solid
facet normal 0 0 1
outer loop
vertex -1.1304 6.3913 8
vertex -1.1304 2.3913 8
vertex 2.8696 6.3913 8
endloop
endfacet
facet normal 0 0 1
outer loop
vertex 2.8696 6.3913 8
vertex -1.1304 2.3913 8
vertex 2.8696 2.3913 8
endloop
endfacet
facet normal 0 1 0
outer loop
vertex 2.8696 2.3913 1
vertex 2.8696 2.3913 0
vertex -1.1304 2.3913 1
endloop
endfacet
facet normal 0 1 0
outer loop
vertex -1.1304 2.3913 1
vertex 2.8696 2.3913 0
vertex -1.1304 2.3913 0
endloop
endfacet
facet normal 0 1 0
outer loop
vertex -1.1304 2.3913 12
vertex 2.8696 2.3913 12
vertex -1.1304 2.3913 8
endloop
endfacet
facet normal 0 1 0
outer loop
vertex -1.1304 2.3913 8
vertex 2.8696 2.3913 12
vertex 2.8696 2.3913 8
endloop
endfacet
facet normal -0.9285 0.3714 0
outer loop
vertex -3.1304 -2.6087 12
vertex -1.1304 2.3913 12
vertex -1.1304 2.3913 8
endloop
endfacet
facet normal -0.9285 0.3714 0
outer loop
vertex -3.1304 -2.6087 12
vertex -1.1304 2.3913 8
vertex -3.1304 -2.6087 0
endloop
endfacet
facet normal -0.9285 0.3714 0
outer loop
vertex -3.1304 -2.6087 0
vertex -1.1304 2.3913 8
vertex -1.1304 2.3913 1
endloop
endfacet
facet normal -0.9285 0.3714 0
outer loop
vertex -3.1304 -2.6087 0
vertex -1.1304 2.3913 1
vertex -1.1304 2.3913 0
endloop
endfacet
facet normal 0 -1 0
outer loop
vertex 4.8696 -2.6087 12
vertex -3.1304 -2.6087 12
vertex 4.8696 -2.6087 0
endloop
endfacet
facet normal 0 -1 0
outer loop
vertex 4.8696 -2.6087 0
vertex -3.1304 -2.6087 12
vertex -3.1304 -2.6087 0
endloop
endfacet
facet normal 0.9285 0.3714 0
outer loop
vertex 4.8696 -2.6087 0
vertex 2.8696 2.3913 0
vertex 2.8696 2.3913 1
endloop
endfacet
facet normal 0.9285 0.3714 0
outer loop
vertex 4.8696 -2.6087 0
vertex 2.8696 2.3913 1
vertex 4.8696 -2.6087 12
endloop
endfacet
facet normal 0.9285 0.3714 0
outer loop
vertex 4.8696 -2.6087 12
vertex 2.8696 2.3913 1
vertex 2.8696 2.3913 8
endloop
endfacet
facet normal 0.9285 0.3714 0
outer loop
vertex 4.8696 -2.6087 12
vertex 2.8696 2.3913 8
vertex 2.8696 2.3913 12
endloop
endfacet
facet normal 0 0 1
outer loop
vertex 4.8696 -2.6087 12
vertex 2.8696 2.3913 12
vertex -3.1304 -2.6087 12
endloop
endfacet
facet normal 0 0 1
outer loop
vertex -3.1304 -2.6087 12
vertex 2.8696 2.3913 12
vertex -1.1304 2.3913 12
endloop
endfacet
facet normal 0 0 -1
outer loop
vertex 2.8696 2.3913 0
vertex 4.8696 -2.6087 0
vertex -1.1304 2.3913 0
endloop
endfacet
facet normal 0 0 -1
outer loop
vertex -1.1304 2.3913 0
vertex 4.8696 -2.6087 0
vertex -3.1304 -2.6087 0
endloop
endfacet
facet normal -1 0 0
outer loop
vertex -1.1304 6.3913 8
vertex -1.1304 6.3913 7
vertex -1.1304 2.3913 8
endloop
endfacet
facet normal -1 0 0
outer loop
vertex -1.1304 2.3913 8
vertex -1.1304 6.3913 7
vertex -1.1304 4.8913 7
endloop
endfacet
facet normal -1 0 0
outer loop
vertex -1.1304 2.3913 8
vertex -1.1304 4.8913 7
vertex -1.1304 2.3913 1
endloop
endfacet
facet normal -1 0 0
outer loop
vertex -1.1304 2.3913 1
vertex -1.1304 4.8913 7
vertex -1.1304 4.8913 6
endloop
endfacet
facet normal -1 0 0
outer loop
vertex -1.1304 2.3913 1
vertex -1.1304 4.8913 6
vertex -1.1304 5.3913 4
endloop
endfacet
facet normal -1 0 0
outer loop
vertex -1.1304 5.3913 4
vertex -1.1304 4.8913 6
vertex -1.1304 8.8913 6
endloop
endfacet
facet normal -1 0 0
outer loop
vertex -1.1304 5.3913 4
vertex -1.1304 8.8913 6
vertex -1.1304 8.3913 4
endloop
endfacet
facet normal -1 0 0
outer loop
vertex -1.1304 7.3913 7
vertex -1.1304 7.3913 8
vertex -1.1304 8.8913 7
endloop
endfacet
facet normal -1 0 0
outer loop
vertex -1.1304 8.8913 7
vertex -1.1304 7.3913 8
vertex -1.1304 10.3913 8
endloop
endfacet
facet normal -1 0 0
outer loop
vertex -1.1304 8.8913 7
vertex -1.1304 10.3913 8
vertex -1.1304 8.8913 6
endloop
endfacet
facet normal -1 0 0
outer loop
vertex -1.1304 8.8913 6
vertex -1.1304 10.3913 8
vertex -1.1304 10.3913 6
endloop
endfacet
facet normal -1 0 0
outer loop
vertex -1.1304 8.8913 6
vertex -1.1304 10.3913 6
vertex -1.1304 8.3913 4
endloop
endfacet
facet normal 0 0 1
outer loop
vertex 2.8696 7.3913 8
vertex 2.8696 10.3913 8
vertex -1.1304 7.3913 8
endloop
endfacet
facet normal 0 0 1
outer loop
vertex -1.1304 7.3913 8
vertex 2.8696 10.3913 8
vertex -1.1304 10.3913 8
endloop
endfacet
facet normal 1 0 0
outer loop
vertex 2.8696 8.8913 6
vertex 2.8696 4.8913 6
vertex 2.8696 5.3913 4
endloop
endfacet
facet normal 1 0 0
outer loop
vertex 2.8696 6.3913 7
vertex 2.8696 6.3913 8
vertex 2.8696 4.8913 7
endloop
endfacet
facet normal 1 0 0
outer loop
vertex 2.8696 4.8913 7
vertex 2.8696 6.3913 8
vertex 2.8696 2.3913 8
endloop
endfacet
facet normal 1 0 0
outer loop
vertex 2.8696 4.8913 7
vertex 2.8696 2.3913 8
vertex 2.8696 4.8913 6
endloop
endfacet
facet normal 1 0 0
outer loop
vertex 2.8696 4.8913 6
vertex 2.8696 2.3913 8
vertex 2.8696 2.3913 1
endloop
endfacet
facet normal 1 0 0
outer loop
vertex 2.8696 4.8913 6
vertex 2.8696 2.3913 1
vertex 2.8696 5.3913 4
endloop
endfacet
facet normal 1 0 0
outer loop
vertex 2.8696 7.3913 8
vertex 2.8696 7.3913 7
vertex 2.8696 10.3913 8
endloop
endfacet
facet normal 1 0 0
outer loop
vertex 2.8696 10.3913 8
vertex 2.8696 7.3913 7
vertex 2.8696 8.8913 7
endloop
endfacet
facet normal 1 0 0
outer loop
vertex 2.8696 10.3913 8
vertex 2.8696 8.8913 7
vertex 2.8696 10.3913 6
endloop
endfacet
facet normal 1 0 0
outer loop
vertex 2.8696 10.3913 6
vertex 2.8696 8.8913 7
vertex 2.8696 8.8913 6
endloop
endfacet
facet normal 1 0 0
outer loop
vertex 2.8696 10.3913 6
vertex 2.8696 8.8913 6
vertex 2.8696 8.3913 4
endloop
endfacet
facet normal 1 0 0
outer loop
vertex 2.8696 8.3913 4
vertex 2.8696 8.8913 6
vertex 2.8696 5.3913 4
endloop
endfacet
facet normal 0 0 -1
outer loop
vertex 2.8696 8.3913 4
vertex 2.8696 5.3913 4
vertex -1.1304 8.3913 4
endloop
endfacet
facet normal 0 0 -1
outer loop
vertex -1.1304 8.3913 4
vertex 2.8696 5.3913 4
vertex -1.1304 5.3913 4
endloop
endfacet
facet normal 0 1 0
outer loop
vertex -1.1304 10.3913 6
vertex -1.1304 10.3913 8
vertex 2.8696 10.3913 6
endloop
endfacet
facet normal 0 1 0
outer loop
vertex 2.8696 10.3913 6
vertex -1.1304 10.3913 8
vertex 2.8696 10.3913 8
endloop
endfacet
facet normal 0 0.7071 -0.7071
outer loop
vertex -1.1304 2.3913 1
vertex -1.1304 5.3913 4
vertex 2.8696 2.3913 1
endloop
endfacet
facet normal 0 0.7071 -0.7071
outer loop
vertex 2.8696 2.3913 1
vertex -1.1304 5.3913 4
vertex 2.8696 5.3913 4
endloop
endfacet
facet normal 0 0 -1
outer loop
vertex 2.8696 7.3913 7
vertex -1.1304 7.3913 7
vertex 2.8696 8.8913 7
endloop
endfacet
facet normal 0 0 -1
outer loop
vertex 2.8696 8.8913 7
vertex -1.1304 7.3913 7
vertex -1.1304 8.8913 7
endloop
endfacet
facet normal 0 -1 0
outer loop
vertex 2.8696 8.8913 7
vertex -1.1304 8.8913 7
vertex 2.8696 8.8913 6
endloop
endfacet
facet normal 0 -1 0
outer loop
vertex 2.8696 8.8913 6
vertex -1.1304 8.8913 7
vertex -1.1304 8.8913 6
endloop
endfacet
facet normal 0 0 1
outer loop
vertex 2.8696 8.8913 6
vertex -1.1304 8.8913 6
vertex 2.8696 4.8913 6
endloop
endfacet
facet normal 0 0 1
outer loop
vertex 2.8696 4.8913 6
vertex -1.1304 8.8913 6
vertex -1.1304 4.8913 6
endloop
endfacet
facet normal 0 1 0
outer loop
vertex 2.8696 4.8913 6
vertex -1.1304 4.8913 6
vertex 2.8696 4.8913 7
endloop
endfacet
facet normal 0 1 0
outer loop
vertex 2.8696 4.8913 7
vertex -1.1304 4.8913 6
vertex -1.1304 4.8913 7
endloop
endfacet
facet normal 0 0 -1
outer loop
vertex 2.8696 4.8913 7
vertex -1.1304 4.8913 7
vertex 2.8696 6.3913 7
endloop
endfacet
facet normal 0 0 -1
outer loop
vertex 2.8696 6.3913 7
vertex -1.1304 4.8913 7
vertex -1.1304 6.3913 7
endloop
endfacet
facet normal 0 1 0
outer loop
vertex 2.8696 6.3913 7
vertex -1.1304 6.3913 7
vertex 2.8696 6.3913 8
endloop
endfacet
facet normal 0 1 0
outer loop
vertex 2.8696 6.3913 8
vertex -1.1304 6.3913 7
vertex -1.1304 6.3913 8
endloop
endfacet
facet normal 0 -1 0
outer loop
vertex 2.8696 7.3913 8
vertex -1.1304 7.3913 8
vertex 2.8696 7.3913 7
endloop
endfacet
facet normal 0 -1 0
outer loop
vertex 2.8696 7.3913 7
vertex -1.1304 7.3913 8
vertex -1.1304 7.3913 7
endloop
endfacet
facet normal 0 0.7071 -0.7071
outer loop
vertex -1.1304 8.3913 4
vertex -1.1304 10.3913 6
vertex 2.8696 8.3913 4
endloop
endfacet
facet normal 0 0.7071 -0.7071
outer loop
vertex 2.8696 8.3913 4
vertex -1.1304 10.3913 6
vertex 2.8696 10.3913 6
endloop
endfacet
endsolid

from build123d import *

# Parameters (mm, degrees)
BOSS_EXTRUDE1_DEPTH = 12
SKETCH2_W           = 4
SKETCH2_H           = 4
BOSS_EXTRUDE2_DEPTH = 8
CHAMFER1_SIZE       = 3
CUT_EXTRUDE1_DEPTH  = 18
CHAMFER2_SIZE       = 2


with BuildPart() as part:
    # Sketch1 → Boss-Extrude1 (new body)
    with BuildSketch(Plane.XY):
        Polygon((-3.130434783, -2.608695652), (4.869565217, -2.608695652), (2.869565217, 2.391304348), (-1.130434783, 2.391304348), align=None)
    extrude(amount=BOSS_EXTRUDE1_DEPTH)

    # Sketch2 → Boss-Extrude2 (add)
    with BuildSketch(Plane(origin=(0, 2.391304348, 0), x_dir=(1, 0, 0), z_dir=(0, 1, 0))):
        with Locations((0.869565217, -6)):
            Rectangle(SKETCH2_W, SKETCH2_H)
    extrude(amount=BOSS_EXTRUDE2_DEPTH)

    # Chamfer1
    chamfer1_edges = [part.edges().sort_by_distance(p)[0] for p in [
        (0.869565217, 2.391304348, 4),
    ]]
    chamfer(chamfer1_edges, length=CHAMFER1_SIZE)

    # Sketch3 → Cut-Extrude1 (cut)
    with BuildSketch(Plane(origin=(2.869565217, 0, 0), x_dir=(0, 0, -1), z_dir=(1, 0, 0))):
        Polygon((-7, 8.891304348), (-6, 8.891304348), (-6, 4.891304348), (-7, 4.891304348), (-7, 6.391304348), (-8, 6.391304348), (-8, 7.391304348), (-7, 7.391304348), align=None)
    extrude(amount=-CUT_EXTRUDE1_DEPTH, mode=Mode.SUBTRACT)

    # Chamfer2
    chamfer2_edges = [part.edges().sort_by_distance(p)[0] for p in [
        (0.869565217, 10.391304348, 4),
    ]]
    chamfer(chamfer2_edges, length=CHAMFER2_SIZE)


solid = part.part
